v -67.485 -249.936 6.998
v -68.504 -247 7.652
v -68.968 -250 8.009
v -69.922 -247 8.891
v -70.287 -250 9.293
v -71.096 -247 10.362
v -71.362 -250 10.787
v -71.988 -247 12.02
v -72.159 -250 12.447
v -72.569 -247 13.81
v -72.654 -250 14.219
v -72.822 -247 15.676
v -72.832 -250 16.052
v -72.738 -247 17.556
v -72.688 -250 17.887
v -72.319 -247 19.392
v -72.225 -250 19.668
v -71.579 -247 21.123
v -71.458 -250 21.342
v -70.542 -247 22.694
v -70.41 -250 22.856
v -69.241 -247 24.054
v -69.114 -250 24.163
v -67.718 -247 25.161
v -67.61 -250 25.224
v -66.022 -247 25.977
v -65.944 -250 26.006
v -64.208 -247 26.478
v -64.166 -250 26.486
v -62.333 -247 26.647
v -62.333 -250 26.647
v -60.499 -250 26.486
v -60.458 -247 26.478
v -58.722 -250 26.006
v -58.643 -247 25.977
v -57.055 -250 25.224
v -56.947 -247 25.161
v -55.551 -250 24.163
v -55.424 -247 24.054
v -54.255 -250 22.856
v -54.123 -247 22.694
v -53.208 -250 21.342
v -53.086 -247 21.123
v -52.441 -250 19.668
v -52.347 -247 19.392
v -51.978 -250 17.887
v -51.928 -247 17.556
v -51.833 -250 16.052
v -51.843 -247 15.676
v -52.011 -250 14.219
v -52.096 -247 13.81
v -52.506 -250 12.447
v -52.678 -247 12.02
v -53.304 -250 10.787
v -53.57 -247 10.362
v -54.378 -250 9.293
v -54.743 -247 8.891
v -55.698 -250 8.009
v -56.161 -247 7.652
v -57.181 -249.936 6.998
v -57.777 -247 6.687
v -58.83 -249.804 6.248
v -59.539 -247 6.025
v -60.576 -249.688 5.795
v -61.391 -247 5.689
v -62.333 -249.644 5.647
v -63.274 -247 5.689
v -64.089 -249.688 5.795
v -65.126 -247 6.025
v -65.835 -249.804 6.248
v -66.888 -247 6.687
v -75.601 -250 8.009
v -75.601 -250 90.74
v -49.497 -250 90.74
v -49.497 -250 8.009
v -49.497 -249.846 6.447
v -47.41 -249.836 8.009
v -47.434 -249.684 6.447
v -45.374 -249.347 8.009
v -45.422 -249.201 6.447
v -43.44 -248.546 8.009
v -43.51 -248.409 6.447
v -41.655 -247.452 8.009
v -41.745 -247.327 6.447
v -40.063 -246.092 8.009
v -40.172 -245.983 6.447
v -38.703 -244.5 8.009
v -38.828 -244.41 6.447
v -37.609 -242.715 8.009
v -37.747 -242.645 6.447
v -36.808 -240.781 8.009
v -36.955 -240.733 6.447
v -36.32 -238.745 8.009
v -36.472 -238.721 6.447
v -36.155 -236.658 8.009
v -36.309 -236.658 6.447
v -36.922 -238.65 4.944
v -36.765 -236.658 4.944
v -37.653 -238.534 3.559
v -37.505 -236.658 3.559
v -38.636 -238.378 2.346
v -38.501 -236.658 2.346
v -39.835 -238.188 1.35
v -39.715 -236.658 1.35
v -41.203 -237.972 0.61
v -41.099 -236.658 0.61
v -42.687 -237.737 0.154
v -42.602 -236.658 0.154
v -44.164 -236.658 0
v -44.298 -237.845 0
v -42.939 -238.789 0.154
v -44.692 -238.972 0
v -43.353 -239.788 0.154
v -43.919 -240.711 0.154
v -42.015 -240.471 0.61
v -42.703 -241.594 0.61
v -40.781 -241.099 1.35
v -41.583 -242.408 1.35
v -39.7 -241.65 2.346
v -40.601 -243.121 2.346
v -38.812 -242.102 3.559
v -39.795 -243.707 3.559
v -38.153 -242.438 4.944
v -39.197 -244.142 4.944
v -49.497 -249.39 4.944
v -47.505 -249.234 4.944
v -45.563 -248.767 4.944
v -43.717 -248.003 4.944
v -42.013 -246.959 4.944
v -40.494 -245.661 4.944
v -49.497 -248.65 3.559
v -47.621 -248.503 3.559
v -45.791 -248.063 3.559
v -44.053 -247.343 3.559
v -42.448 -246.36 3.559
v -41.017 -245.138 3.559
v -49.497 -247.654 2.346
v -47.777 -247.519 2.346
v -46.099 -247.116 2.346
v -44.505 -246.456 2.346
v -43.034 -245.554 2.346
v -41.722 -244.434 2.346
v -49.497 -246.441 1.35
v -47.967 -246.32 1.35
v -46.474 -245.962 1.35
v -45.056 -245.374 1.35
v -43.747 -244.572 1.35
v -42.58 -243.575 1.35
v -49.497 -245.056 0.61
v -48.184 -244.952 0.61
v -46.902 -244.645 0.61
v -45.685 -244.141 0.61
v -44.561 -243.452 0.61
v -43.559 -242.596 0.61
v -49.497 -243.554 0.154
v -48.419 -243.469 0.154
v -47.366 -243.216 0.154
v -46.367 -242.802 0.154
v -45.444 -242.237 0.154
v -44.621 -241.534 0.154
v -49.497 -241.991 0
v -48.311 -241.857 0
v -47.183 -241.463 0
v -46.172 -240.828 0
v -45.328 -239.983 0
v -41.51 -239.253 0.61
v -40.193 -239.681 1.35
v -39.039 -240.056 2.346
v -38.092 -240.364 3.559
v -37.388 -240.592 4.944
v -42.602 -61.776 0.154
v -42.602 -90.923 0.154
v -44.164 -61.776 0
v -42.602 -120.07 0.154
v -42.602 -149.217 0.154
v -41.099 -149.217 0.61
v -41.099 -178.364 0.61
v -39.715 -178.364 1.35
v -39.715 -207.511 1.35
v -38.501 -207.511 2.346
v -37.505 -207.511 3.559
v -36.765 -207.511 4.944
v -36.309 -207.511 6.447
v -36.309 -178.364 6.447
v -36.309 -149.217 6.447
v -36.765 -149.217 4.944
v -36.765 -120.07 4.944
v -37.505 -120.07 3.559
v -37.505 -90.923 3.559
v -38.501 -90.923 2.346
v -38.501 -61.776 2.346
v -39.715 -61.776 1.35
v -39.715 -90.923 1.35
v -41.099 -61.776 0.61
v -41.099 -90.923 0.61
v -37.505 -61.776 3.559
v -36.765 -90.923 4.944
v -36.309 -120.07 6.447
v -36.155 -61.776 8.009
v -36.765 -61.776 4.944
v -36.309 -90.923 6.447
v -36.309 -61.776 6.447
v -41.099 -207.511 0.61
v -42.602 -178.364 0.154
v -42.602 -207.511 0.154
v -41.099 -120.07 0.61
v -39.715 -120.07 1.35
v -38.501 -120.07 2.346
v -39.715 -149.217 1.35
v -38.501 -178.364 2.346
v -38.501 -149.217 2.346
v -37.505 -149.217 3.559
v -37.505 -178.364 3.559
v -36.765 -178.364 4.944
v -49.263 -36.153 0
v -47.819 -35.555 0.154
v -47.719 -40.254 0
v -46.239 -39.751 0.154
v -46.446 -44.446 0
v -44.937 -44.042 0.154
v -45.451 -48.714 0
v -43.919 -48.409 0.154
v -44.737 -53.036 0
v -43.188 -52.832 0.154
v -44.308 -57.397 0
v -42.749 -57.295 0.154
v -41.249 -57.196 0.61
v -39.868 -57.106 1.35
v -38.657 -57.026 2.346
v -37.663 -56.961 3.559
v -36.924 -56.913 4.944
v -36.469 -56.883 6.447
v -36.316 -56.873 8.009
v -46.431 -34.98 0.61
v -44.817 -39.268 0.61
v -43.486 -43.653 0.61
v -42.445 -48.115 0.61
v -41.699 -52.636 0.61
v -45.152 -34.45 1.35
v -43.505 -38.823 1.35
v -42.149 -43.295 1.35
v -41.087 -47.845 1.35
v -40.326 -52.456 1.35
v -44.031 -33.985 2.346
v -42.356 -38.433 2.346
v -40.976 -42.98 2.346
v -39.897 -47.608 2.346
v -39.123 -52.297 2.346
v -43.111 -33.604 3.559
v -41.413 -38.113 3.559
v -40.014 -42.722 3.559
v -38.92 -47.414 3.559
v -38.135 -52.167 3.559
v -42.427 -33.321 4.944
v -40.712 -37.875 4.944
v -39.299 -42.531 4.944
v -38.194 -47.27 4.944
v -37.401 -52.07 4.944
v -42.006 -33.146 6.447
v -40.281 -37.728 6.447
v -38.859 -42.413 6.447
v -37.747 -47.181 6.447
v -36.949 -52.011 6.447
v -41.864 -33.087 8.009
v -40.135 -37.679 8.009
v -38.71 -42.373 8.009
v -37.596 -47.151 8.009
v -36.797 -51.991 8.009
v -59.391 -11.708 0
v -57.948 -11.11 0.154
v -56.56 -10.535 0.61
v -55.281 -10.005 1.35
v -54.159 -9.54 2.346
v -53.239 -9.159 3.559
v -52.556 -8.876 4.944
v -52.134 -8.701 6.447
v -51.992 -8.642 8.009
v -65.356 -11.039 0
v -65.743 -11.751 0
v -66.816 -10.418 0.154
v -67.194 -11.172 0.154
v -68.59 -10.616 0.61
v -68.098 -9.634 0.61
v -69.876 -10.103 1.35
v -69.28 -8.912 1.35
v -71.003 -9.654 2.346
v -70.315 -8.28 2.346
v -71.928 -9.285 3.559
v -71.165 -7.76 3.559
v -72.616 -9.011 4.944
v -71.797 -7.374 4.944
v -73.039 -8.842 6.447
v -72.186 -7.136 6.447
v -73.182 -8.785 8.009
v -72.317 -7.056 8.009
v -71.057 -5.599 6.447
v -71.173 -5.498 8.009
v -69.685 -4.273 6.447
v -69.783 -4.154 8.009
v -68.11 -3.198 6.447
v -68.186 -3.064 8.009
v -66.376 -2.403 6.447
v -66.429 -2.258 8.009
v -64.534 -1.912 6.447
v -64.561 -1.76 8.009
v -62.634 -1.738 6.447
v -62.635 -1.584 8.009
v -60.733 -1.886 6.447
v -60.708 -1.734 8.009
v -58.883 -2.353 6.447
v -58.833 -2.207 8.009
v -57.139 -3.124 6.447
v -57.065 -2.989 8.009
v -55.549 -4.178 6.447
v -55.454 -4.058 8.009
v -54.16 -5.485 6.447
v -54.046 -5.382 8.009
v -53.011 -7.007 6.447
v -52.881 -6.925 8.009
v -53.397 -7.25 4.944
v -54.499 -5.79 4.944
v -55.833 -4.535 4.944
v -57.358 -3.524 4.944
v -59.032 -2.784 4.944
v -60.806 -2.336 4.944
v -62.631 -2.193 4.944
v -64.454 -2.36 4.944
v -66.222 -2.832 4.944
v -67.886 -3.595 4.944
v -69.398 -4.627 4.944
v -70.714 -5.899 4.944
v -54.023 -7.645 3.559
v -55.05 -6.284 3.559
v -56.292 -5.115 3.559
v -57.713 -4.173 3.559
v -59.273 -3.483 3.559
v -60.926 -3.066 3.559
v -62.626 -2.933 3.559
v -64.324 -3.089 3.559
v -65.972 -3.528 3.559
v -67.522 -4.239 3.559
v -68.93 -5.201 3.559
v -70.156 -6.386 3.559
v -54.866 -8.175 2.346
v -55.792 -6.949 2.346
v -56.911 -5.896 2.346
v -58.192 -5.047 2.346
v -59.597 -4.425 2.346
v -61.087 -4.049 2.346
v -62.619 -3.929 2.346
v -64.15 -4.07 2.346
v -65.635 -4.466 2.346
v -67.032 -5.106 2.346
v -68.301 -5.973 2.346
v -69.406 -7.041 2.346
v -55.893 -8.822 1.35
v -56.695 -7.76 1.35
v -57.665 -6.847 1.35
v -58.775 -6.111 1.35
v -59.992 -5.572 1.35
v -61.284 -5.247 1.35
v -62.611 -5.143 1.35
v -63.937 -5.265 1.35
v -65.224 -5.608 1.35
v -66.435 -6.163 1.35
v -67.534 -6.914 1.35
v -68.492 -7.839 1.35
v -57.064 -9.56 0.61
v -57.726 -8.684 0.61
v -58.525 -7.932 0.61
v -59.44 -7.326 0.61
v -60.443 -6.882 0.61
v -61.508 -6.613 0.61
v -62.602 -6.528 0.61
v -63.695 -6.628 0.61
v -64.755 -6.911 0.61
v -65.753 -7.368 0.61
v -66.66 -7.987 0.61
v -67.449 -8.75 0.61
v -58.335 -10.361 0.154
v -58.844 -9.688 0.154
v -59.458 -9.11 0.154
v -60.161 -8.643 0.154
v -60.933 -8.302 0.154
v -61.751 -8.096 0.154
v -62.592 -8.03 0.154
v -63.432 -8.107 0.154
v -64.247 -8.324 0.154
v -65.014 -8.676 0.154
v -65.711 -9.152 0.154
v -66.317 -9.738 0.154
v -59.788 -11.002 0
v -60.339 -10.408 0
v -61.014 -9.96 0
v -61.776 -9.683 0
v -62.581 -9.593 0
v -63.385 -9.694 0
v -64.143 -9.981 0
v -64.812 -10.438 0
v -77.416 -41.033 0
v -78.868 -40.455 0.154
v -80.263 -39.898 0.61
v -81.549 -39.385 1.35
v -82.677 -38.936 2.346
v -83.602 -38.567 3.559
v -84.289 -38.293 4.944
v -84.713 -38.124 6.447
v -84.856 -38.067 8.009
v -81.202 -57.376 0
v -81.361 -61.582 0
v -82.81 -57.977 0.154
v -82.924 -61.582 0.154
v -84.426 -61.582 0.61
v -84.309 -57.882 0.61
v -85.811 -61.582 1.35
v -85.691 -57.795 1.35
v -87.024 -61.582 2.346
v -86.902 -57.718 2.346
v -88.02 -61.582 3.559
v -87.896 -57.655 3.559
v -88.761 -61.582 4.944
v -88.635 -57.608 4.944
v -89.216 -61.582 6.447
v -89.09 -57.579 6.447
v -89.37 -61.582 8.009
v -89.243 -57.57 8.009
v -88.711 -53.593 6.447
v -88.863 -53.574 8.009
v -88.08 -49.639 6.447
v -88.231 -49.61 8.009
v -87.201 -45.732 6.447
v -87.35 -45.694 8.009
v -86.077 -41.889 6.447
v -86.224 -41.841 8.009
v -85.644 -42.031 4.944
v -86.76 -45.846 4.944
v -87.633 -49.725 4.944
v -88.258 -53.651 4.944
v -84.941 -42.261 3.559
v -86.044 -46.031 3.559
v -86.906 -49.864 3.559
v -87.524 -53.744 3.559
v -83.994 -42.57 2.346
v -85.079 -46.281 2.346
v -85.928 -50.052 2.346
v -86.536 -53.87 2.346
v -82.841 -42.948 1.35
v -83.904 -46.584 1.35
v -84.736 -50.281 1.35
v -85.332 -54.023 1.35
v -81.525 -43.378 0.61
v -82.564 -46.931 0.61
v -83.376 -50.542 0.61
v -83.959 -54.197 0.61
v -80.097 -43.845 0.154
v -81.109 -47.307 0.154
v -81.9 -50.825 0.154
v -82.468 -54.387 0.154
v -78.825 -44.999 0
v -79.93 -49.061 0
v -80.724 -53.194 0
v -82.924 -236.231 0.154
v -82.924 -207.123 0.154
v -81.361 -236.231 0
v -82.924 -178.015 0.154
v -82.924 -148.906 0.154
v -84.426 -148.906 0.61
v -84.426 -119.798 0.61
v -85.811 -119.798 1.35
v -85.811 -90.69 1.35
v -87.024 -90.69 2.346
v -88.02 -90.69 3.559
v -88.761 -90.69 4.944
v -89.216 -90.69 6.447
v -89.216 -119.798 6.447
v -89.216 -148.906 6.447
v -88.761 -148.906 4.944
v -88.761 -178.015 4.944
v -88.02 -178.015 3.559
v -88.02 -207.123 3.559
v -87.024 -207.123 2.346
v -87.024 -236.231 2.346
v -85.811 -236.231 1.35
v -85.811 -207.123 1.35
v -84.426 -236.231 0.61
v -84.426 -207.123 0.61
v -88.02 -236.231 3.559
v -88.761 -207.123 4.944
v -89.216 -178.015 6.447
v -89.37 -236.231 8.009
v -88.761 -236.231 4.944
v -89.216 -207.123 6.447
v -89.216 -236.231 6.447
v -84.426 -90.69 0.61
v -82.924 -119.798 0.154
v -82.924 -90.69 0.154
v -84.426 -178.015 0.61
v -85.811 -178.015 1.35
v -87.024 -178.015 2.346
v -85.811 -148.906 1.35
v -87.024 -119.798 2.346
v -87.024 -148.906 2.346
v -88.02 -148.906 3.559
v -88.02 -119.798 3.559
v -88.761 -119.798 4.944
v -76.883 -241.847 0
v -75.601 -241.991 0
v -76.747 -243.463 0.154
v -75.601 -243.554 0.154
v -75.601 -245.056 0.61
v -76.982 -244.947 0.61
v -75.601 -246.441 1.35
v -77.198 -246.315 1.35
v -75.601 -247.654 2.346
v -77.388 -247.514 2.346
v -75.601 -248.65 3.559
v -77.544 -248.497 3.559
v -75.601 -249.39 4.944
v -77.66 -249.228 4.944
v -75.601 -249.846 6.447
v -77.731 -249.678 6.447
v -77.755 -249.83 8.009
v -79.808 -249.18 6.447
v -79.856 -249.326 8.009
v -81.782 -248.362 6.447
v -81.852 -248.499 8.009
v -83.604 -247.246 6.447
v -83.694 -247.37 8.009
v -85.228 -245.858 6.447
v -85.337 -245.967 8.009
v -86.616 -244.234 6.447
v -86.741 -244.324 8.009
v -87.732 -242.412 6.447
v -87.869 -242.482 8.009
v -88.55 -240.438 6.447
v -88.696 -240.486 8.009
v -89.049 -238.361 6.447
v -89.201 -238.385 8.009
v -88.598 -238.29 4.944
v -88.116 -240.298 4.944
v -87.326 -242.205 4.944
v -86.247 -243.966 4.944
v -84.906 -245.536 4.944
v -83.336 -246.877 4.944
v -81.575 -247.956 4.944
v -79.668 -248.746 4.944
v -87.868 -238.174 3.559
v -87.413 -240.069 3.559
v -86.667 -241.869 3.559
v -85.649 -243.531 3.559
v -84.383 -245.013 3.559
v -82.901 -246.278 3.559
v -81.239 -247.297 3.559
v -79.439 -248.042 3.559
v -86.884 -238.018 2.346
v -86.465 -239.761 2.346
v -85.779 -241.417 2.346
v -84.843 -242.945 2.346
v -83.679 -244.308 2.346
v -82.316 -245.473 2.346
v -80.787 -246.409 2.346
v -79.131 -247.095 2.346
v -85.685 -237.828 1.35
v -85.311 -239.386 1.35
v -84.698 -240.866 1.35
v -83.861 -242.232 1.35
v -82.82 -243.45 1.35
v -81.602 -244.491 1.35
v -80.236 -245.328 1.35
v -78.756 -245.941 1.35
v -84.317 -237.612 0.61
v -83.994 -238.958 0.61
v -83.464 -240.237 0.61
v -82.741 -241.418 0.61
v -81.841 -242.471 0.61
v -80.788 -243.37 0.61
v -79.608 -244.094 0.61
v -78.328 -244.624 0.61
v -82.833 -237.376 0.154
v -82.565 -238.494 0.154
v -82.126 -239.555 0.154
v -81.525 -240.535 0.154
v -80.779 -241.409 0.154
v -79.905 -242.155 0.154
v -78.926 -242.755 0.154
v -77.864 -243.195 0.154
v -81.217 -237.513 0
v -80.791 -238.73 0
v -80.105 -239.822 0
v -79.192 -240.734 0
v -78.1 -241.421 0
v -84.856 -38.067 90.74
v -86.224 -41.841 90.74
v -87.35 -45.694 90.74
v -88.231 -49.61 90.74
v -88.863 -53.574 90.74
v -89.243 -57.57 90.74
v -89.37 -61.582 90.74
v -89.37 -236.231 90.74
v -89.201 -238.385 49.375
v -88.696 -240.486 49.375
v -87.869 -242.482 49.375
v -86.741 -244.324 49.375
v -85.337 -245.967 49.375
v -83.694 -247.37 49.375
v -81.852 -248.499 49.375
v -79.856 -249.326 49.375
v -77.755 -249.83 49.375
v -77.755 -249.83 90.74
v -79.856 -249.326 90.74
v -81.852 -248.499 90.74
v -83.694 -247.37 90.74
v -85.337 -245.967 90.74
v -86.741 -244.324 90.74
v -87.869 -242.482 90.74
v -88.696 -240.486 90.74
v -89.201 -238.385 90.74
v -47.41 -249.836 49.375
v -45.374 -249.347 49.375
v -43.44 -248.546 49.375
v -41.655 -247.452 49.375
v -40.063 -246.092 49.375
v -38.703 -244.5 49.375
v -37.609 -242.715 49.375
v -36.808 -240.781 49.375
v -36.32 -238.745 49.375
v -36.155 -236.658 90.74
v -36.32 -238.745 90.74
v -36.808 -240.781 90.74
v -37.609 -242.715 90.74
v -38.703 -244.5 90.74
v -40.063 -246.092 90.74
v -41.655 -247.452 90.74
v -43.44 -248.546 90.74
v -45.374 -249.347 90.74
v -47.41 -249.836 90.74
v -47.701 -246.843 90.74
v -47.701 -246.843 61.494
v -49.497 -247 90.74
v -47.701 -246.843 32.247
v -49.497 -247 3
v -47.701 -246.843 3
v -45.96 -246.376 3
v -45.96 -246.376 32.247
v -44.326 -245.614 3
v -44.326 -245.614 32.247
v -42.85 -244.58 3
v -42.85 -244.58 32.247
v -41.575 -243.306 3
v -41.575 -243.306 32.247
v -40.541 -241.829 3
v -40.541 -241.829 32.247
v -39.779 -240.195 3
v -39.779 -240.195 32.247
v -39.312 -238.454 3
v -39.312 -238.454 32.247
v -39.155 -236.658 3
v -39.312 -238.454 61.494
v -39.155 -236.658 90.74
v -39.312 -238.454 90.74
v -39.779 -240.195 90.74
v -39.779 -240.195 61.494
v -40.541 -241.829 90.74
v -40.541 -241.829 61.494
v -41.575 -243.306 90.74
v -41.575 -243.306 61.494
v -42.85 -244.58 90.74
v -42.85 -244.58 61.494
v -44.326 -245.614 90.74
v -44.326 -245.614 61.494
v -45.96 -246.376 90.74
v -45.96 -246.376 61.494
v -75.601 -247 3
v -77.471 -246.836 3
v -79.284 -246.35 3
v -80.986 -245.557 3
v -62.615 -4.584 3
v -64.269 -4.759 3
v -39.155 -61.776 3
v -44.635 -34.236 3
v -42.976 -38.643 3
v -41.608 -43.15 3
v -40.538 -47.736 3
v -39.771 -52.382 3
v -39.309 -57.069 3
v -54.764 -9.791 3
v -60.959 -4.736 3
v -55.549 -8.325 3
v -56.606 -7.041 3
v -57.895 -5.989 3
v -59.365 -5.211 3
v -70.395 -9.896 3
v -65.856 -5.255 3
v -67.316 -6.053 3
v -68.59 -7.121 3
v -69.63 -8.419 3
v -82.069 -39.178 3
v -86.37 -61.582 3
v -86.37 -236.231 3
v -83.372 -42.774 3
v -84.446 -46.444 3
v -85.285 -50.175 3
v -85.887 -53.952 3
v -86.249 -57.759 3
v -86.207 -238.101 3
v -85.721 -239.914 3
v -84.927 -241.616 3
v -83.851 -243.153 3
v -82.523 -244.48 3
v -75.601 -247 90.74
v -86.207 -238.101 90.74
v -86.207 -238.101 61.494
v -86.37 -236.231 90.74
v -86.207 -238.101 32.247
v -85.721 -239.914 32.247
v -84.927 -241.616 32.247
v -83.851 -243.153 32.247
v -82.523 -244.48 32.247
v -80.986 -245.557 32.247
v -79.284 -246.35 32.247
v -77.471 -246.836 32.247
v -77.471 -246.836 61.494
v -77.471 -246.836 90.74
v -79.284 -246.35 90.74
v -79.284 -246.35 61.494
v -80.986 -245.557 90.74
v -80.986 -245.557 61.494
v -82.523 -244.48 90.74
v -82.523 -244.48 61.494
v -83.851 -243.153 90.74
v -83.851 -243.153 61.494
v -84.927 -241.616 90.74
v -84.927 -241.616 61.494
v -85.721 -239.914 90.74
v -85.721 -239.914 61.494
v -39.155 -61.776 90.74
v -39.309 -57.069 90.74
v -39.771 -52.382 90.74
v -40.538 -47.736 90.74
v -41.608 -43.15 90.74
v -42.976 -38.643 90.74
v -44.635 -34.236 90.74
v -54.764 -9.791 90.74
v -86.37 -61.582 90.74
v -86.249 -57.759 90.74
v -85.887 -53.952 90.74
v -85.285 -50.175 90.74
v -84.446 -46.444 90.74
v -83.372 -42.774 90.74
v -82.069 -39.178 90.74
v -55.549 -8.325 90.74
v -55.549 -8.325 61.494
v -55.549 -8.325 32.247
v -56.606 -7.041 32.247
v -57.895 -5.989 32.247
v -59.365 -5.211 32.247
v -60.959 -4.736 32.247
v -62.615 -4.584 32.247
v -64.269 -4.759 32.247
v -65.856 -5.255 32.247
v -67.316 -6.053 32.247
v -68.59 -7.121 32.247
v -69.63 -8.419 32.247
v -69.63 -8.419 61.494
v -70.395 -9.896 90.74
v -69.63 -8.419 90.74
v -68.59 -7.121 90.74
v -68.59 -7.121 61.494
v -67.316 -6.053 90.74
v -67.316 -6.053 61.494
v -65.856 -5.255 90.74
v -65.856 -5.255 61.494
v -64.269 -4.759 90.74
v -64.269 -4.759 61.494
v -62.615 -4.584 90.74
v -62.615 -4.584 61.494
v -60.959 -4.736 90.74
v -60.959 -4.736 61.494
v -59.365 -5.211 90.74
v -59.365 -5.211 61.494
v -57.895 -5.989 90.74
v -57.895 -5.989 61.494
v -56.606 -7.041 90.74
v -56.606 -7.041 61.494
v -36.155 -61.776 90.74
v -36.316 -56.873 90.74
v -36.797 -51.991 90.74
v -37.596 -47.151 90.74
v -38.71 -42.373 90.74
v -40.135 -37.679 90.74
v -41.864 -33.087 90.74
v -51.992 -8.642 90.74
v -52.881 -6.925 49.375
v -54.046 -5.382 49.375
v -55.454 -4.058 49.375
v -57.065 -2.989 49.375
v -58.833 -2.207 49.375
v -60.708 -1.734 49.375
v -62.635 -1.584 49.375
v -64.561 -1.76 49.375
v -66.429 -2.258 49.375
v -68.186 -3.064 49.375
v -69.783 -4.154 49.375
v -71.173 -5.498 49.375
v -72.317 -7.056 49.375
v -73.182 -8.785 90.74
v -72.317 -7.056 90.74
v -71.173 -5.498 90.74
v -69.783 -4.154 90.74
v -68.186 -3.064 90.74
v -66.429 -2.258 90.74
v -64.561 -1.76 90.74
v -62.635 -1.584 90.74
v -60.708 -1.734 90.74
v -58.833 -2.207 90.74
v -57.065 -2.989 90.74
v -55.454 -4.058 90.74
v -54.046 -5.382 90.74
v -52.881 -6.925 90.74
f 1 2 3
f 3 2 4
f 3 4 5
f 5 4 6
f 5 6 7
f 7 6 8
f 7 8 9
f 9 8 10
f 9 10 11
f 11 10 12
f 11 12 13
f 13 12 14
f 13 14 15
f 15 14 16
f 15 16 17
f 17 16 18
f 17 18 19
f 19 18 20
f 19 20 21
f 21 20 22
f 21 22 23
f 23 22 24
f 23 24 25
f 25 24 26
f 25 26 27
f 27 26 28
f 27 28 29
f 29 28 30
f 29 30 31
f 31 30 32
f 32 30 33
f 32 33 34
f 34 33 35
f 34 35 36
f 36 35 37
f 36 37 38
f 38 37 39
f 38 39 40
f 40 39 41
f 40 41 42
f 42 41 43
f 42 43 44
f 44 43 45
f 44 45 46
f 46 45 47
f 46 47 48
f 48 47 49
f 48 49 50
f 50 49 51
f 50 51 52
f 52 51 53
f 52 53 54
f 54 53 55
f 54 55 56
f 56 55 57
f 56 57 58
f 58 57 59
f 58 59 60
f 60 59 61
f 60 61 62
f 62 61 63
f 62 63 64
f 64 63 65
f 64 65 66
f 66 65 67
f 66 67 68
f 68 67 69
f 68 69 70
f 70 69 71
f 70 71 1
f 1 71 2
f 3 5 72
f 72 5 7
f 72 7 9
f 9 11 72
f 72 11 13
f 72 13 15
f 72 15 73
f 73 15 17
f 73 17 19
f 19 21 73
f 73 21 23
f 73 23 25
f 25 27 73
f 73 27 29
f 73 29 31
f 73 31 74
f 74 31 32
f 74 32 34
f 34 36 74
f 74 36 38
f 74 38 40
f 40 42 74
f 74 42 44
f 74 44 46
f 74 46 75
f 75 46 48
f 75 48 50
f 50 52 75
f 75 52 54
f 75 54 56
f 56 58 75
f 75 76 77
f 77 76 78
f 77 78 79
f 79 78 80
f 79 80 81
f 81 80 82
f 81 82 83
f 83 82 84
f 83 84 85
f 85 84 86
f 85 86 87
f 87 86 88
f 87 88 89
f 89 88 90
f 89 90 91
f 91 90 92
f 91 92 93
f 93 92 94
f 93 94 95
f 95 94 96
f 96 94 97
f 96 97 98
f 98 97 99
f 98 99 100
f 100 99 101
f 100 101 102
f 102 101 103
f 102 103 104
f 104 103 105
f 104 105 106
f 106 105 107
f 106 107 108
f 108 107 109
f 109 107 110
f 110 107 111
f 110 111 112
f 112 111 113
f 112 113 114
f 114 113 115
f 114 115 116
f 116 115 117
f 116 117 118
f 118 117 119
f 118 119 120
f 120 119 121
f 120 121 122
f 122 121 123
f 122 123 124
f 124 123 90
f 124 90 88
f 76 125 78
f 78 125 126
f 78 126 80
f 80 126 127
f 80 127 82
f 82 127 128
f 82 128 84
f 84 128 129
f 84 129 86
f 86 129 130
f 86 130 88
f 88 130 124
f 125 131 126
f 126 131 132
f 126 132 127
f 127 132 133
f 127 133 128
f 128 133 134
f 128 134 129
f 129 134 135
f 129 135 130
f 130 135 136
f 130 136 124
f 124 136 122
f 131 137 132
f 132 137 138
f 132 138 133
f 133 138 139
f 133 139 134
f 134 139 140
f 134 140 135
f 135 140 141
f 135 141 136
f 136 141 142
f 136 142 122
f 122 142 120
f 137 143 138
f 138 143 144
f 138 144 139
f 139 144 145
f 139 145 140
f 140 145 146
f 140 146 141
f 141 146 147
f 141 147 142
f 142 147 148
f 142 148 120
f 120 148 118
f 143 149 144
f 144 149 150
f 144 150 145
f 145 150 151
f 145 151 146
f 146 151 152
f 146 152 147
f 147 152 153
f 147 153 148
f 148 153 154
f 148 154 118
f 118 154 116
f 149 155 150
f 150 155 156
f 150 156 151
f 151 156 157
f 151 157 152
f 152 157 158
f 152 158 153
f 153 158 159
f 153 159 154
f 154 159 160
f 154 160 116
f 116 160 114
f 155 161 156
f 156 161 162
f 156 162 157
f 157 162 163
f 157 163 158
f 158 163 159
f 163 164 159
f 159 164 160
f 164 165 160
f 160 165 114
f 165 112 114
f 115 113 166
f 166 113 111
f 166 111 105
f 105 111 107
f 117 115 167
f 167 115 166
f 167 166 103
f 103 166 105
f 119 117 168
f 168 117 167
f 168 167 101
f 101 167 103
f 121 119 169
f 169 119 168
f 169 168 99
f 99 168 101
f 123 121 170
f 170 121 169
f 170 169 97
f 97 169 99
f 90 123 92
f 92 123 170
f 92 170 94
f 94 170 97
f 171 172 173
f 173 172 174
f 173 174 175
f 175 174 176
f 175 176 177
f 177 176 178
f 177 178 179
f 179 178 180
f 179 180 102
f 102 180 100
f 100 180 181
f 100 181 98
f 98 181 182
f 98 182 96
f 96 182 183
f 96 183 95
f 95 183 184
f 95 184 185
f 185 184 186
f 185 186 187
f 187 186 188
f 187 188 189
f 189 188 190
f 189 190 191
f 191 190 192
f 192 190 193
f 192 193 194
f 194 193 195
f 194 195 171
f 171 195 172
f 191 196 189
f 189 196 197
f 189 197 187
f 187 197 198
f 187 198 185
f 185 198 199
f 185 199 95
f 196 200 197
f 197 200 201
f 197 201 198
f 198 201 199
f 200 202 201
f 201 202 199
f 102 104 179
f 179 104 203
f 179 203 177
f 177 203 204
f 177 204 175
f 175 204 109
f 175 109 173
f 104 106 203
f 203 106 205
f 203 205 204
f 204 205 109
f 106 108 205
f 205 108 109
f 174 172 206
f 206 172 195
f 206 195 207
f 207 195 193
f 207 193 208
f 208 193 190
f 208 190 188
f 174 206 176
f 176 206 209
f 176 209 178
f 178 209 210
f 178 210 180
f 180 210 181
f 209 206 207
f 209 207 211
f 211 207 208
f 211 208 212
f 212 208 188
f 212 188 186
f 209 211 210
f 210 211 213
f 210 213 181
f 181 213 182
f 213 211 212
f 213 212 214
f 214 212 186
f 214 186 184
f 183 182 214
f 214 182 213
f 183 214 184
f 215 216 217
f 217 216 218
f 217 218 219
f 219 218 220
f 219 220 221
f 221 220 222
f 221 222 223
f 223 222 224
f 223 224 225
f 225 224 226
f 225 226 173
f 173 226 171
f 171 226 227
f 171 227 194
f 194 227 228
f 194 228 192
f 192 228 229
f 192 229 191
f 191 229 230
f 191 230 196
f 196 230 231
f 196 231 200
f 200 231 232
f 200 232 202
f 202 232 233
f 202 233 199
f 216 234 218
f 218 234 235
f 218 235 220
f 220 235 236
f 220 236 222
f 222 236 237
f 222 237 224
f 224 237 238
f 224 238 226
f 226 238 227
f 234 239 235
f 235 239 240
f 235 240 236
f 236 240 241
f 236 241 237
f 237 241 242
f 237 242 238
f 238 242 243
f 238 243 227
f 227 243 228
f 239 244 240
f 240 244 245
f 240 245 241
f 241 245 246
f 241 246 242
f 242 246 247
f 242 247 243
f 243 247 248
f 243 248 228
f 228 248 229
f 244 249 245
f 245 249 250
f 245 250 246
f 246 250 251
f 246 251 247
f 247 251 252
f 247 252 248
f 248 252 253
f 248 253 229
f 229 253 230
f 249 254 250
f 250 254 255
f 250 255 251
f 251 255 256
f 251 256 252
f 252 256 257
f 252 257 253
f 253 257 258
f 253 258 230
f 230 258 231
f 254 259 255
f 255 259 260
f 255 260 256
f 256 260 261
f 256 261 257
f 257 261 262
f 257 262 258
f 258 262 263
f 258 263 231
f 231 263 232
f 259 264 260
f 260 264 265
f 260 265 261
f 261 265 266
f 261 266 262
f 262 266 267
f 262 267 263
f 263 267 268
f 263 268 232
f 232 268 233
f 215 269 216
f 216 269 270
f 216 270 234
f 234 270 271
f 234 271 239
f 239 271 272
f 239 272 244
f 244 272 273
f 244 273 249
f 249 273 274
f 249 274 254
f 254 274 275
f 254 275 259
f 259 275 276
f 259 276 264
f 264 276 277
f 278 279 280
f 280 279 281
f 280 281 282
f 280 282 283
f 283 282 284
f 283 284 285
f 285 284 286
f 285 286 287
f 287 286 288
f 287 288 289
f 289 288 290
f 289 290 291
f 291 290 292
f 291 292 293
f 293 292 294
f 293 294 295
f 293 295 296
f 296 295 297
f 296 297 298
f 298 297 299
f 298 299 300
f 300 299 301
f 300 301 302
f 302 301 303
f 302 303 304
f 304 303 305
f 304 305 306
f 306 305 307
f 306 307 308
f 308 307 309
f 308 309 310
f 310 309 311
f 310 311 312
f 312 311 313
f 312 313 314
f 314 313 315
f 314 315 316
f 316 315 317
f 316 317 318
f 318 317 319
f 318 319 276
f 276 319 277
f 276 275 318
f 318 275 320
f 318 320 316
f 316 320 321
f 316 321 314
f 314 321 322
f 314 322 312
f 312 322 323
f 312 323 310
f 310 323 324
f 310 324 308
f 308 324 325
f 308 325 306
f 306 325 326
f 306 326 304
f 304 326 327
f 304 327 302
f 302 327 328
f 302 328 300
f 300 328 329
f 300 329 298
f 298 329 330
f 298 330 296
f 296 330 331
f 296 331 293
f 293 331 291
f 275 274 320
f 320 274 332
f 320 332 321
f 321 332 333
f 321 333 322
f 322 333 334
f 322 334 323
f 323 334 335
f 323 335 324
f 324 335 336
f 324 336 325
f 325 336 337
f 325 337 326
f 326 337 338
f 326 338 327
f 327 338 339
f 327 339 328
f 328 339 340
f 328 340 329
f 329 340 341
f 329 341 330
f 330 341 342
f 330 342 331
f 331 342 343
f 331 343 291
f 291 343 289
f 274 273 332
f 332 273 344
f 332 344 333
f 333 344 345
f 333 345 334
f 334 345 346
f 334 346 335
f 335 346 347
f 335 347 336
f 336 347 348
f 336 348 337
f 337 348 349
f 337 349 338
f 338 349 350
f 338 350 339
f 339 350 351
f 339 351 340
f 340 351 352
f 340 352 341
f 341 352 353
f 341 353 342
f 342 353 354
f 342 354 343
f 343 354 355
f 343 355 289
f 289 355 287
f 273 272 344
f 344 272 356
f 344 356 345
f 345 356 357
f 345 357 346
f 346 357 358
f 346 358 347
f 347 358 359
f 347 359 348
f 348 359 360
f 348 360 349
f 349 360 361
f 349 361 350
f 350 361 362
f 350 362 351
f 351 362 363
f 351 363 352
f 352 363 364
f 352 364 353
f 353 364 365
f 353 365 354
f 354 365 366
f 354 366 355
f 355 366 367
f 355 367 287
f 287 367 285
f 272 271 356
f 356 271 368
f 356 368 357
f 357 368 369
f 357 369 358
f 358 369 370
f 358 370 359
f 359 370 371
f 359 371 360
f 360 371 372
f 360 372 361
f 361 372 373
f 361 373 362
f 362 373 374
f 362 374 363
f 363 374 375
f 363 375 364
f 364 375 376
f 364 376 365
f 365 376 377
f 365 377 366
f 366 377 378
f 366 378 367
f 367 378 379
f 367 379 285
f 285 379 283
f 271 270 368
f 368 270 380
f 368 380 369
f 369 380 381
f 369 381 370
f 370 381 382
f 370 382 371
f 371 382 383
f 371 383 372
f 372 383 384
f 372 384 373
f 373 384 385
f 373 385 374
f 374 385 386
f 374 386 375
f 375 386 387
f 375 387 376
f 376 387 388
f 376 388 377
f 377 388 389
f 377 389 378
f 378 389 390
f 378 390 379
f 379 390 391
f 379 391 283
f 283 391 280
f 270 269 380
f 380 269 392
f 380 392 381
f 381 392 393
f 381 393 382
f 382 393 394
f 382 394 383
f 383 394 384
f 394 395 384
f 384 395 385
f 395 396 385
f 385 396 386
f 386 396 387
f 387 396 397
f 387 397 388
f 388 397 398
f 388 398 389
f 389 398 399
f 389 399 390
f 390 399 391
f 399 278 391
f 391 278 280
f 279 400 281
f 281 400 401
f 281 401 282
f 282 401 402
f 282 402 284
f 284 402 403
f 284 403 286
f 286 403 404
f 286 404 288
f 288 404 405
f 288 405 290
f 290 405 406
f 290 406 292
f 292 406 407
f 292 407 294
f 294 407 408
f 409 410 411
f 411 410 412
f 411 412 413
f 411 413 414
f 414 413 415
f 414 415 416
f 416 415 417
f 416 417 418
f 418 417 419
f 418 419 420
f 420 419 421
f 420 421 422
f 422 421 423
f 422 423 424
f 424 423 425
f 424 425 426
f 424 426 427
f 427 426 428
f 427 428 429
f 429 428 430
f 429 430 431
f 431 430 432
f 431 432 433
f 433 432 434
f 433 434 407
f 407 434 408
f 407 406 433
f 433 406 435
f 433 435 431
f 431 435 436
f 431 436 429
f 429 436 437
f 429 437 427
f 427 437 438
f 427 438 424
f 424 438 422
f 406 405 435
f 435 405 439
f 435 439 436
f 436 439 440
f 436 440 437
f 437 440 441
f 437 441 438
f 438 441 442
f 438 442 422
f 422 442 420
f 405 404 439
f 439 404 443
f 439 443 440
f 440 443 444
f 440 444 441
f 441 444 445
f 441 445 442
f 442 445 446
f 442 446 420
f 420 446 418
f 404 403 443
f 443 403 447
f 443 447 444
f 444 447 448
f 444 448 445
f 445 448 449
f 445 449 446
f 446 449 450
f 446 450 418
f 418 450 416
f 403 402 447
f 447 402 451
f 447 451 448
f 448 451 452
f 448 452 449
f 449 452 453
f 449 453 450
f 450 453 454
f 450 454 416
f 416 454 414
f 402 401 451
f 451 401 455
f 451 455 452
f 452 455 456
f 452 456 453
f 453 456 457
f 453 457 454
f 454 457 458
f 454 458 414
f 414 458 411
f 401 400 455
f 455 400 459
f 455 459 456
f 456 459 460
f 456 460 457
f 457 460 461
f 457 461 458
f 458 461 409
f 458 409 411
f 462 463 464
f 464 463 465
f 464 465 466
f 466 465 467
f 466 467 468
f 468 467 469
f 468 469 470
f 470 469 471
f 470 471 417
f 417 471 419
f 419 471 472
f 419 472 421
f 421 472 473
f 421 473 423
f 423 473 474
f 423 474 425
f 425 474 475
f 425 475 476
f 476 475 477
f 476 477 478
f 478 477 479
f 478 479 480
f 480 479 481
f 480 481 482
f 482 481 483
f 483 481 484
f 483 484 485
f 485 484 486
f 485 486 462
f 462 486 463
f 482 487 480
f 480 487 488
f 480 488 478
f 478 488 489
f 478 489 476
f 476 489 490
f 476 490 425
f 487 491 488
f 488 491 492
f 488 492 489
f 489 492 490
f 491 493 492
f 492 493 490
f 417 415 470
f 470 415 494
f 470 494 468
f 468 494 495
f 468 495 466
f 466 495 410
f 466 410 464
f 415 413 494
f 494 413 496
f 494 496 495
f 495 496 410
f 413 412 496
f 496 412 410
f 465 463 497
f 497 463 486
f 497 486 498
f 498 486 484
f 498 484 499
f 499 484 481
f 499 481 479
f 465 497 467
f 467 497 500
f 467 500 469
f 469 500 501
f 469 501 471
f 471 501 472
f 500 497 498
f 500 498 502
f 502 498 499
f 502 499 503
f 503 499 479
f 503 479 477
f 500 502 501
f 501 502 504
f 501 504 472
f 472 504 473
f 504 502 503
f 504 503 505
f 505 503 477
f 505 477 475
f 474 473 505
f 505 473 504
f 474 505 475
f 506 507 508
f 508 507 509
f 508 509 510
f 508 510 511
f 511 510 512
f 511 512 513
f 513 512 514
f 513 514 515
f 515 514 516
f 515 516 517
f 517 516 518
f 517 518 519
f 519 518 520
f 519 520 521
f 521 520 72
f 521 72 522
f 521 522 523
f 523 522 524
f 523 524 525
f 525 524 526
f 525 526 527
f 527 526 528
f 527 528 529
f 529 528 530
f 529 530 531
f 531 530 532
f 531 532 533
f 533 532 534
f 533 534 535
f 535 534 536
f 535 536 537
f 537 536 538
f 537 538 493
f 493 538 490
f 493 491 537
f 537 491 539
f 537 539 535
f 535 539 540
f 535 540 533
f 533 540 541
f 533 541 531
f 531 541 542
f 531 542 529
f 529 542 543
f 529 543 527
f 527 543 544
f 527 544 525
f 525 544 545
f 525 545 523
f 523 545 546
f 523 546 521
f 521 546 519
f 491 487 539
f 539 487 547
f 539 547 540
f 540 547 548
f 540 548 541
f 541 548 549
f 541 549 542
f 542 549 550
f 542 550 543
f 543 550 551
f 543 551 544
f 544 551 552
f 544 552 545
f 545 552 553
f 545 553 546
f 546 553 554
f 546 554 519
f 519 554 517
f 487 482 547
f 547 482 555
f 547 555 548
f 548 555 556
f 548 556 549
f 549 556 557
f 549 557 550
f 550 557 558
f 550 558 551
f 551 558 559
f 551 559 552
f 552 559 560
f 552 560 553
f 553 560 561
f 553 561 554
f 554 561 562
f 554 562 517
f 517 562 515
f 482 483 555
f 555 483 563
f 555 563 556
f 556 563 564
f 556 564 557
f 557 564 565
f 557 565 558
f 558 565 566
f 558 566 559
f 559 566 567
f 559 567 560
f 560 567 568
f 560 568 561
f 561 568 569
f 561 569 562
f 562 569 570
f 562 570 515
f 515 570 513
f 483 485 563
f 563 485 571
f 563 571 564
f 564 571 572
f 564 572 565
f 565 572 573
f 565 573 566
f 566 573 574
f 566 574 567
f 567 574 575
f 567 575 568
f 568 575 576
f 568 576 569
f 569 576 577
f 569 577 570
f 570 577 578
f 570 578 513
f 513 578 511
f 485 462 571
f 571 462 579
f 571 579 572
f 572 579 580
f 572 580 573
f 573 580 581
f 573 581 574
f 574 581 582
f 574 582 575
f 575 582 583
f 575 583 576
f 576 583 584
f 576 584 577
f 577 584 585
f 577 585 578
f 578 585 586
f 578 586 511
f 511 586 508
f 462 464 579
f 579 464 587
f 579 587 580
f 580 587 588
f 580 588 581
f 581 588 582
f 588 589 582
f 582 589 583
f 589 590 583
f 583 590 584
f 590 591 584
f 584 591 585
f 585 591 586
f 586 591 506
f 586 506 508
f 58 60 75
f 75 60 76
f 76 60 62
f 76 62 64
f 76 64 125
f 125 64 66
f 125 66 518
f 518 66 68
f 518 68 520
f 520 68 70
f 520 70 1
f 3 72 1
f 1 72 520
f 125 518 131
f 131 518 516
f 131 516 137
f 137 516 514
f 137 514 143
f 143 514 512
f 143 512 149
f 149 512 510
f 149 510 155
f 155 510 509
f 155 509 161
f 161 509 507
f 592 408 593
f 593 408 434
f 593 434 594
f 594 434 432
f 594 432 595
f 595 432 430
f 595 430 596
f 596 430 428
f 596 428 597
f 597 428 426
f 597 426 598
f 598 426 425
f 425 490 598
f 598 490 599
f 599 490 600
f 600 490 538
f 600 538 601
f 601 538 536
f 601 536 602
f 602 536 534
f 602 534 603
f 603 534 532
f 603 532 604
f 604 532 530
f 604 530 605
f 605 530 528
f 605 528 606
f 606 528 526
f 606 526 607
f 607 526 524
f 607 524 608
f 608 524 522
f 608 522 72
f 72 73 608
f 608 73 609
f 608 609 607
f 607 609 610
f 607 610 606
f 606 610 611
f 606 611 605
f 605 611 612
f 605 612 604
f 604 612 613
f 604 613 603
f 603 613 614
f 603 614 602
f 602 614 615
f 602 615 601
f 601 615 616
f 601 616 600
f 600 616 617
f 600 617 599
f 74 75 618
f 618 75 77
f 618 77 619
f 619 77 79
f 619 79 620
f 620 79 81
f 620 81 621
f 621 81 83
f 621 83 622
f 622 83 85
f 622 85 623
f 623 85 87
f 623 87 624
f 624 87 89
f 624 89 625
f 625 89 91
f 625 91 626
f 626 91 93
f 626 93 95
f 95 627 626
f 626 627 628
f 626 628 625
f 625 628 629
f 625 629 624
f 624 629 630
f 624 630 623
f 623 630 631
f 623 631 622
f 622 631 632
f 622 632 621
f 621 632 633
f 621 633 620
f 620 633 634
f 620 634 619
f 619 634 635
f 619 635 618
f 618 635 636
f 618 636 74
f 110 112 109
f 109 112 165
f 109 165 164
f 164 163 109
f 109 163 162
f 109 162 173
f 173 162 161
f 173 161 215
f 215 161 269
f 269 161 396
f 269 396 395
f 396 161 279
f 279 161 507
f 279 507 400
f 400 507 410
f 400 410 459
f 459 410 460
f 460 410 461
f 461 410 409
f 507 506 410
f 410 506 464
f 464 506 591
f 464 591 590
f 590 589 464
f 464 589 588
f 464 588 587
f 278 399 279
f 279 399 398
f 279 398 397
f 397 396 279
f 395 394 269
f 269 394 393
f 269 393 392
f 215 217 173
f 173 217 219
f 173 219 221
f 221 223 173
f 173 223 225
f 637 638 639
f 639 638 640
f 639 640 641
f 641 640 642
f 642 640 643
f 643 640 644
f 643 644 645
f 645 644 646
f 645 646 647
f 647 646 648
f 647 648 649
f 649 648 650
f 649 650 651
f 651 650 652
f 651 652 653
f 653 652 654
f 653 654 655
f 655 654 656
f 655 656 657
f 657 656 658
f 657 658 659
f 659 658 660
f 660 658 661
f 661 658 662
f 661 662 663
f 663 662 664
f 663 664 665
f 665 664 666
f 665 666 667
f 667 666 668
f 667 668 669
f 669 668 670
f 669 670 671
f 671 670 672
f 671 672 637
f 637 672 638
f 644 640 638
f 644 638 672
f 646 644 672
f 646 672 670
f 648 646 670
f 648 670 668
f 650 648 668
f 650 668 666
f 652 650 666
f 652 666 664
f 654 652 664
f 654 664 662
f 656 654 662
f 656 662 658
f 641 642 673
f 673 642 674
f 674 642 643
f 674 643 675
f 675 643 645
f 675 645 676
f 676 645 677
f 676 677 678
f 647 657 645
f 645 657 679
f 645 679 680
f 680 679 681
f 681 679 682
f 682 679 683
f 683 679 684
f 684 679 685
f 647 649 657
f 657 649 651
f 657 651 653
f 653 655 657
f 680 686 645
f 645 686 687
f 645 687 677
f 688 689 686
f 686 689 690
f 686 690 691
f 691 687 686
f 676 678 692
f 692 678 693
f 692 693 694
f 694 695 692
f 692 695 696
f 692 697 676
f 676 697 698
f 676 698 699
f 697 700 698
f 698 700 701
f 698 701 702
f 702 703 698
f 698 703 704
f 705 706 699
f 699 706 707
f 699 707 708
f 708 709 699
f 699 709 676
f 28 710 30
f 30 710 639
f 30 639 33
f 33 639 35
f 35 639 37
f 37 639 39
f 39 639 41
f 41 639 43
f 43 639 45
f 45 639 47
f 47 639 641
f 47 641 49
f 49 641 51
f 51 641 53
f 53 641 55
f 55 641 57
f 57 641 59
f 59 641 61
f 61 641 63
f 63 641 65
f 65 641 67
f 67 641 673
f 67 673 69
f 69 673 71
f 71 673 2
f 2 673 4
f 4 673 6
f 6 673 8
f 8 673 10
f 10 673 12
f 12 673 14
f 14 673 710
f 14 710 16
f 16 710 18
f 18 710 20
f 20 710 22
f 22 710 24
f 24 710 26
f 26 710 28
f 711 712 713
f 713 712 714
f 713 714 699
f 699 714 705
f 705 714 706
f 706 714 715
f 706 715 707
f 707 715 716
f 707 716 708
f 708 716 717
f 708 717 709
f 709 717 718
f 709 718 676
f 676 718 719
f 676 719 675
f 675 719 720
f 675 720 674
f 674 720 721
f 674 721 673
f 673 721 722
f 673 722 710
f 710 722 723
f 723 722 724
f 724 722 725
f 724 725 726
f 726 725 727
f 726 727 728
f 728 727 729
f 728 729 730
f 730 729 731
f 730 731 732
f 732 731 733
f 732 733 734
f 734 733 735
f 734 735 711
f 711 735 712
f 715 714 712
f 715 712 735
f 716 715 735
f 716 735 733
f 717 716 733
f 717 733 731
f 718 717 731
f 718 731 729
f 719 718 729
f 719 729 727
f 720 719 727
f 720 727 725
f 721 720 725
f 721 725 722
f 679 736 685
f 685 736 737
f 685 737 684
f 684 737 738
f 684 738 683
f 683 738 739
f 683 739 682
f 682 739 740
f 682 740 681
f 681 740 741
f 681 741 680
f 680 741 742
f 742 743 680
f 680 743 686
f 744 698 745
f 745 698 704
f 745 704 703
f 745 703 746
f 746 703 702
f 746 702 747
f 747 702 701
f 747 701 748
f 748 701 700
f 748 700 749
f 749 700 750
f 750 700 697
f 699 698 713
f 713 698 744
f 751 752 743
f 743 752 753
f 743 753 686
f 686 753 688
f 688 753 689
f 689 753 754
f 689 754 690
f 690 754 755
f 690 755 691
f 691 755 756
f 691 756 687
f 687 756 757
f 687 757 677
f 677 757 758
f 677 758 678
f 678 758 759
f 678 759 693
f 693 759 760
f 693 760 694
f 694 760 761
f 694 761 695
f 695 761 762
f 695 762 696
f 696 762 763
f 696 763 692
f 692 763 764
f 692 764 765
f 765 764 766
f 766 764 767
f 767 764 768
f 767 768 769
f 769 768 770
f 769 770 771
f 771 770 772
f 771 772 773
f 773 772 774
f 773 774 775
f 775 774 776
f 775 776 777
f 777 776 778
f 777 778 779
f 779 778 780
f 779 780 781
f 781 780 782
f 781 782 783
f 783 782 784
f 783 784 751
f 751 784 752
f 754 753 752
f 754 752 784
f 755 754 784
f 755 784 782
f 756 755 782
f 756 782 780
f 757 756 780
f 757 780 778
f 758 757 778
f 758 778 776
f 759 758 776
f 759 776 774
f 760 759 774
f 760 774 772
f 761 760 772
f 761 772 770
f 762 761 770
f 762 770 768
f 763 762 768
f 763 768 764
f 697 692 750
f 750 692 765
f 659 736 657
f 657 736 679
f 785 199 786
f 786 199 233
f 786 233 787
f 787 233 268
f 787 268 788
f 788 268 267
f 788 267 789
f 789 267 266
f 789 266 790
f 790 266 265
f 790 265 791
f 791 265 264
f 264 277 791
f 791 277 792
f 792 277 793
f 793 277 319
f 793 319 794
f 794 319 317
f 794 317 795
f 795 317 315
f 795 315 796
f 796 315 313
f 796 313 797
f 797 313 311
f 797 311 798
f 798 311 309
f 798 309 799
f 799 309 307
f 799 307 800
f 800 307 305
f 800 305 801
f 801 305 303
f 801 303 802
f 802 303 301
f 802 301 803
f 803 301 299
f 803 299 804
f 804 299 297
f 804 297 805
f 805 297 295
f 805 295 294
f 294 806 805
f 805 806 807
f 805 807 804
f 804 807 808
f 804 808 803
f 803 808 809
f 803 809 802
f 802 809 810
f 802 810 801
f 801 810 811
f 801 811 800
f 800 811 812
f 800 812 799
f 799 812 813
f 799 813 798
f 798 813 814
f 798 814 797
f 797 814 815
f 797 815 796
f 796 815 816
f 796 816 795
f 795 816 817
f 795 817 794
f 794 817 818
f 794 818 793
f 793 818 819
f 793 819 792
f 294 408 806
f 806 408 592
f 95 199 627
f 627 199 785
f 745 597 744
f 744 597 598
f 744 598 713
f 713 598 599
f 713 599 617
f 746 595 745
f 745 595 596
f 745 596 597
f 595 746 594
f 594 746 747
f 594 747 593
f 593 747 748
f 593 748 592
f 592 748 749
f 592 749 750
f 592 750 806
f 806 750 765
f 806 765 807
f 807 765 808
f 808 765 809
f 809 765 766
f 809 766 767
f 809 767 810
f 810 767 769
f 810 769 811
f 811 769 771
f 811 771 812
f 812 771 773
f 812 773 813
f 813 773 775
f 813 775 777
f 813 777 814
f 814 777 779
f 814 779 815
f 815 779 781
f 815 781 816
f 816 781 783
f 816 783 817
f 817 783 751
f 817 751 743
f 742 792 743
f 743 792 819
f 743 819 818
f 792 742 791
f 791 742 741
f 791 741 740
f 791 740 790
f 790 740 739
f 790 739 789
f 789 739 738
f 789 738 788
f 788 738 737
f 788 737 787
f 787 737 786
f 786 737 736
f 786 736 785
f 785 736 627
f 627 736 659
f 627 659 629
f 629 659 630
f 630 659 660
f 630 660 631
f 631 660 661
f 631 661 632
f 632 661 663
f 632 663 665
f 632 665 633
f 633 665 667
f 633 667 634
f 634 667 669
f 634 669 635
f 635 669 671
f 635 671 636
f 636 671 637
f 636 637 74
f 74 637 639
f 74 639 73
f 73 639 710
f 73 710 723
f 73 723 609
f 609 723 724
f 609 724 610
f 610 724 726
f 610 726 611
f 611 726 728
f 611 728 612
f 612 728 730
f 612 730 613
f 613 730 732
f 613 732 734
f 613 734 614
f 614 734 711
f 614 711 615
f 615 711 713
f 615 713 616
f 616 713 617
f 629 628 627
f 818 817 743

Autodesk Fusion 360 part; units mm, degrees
sketch "Sketch1" plane through (0, 0, 0) normal (0, 0, 1) x (1, 0, 0)
  line L0 (-36.1553, -250) -> (-89.3702, -250)
  line L1 (-89.3702, -250) -> (-89.3702, 17.3508)
  line L2 (-89.3702, 17.3508) -> (-36.1553, 17.3508)
  line L3 (-36.1553, 17.3508) -> (-36.1553, -250)
extrude "Extrude1" add sketch "Sketch1" along normal blind 90.7403
sketch "Sketch2" plane through (0, 0, 90.7403) normal (0, 0, 1) x (-1, 0, 0)
  line L0 (36.1553, -17.3508) -> (89.3702, -17.3508)
  line L1 (89.3702, -17.3508) -> (89.3702, 250)
  line L2 (89.3702, 250) -> (36.1553, 250)
  line L3 (36.1553, 250) -> (36.1553, -17.3508)
  line L4 (89.3702, 49.3912) -> (62.7627, -17.3508)
  line L5 (62.7627, -17.3508) -> (36.1553, 46.8639)
extrude "Extrude2" cut sketch "Sketch2" against normal blind 218.776 contours L0 L3 L5 | L0 L1 L4
fillet "Fillet1" radius 11.437 1 edges at (-62.7627, 17.3508, 45.3701)
fillet "Fillet2" radius 63.498 1 edges at (-89.3702, -49.3912, 45.3701)
fillet "Fillet3" radius 74.946 1 edges at (-36.1553, -46.8639, 45.3701)
fillet "Fillet4" radius 13.769 1 edges at (-89.3702, -250, 45.3701)
fillet "Fillet5" radius 13.342 1 edges at (-36.1553, -250, 45.3701)
shell "Shell1" thickness 3 removed faces 1 at (-53.8936, -178.2217, 90.7403)
fillet "Fillet8" radius 8.009 1 faces at (-53.8936, -178.2217, 0)
hole "Hole2" at (-62.3327, -250, 16.1469) direction (0, 1, 0) diameter 21 depth 30 tip angle 118
